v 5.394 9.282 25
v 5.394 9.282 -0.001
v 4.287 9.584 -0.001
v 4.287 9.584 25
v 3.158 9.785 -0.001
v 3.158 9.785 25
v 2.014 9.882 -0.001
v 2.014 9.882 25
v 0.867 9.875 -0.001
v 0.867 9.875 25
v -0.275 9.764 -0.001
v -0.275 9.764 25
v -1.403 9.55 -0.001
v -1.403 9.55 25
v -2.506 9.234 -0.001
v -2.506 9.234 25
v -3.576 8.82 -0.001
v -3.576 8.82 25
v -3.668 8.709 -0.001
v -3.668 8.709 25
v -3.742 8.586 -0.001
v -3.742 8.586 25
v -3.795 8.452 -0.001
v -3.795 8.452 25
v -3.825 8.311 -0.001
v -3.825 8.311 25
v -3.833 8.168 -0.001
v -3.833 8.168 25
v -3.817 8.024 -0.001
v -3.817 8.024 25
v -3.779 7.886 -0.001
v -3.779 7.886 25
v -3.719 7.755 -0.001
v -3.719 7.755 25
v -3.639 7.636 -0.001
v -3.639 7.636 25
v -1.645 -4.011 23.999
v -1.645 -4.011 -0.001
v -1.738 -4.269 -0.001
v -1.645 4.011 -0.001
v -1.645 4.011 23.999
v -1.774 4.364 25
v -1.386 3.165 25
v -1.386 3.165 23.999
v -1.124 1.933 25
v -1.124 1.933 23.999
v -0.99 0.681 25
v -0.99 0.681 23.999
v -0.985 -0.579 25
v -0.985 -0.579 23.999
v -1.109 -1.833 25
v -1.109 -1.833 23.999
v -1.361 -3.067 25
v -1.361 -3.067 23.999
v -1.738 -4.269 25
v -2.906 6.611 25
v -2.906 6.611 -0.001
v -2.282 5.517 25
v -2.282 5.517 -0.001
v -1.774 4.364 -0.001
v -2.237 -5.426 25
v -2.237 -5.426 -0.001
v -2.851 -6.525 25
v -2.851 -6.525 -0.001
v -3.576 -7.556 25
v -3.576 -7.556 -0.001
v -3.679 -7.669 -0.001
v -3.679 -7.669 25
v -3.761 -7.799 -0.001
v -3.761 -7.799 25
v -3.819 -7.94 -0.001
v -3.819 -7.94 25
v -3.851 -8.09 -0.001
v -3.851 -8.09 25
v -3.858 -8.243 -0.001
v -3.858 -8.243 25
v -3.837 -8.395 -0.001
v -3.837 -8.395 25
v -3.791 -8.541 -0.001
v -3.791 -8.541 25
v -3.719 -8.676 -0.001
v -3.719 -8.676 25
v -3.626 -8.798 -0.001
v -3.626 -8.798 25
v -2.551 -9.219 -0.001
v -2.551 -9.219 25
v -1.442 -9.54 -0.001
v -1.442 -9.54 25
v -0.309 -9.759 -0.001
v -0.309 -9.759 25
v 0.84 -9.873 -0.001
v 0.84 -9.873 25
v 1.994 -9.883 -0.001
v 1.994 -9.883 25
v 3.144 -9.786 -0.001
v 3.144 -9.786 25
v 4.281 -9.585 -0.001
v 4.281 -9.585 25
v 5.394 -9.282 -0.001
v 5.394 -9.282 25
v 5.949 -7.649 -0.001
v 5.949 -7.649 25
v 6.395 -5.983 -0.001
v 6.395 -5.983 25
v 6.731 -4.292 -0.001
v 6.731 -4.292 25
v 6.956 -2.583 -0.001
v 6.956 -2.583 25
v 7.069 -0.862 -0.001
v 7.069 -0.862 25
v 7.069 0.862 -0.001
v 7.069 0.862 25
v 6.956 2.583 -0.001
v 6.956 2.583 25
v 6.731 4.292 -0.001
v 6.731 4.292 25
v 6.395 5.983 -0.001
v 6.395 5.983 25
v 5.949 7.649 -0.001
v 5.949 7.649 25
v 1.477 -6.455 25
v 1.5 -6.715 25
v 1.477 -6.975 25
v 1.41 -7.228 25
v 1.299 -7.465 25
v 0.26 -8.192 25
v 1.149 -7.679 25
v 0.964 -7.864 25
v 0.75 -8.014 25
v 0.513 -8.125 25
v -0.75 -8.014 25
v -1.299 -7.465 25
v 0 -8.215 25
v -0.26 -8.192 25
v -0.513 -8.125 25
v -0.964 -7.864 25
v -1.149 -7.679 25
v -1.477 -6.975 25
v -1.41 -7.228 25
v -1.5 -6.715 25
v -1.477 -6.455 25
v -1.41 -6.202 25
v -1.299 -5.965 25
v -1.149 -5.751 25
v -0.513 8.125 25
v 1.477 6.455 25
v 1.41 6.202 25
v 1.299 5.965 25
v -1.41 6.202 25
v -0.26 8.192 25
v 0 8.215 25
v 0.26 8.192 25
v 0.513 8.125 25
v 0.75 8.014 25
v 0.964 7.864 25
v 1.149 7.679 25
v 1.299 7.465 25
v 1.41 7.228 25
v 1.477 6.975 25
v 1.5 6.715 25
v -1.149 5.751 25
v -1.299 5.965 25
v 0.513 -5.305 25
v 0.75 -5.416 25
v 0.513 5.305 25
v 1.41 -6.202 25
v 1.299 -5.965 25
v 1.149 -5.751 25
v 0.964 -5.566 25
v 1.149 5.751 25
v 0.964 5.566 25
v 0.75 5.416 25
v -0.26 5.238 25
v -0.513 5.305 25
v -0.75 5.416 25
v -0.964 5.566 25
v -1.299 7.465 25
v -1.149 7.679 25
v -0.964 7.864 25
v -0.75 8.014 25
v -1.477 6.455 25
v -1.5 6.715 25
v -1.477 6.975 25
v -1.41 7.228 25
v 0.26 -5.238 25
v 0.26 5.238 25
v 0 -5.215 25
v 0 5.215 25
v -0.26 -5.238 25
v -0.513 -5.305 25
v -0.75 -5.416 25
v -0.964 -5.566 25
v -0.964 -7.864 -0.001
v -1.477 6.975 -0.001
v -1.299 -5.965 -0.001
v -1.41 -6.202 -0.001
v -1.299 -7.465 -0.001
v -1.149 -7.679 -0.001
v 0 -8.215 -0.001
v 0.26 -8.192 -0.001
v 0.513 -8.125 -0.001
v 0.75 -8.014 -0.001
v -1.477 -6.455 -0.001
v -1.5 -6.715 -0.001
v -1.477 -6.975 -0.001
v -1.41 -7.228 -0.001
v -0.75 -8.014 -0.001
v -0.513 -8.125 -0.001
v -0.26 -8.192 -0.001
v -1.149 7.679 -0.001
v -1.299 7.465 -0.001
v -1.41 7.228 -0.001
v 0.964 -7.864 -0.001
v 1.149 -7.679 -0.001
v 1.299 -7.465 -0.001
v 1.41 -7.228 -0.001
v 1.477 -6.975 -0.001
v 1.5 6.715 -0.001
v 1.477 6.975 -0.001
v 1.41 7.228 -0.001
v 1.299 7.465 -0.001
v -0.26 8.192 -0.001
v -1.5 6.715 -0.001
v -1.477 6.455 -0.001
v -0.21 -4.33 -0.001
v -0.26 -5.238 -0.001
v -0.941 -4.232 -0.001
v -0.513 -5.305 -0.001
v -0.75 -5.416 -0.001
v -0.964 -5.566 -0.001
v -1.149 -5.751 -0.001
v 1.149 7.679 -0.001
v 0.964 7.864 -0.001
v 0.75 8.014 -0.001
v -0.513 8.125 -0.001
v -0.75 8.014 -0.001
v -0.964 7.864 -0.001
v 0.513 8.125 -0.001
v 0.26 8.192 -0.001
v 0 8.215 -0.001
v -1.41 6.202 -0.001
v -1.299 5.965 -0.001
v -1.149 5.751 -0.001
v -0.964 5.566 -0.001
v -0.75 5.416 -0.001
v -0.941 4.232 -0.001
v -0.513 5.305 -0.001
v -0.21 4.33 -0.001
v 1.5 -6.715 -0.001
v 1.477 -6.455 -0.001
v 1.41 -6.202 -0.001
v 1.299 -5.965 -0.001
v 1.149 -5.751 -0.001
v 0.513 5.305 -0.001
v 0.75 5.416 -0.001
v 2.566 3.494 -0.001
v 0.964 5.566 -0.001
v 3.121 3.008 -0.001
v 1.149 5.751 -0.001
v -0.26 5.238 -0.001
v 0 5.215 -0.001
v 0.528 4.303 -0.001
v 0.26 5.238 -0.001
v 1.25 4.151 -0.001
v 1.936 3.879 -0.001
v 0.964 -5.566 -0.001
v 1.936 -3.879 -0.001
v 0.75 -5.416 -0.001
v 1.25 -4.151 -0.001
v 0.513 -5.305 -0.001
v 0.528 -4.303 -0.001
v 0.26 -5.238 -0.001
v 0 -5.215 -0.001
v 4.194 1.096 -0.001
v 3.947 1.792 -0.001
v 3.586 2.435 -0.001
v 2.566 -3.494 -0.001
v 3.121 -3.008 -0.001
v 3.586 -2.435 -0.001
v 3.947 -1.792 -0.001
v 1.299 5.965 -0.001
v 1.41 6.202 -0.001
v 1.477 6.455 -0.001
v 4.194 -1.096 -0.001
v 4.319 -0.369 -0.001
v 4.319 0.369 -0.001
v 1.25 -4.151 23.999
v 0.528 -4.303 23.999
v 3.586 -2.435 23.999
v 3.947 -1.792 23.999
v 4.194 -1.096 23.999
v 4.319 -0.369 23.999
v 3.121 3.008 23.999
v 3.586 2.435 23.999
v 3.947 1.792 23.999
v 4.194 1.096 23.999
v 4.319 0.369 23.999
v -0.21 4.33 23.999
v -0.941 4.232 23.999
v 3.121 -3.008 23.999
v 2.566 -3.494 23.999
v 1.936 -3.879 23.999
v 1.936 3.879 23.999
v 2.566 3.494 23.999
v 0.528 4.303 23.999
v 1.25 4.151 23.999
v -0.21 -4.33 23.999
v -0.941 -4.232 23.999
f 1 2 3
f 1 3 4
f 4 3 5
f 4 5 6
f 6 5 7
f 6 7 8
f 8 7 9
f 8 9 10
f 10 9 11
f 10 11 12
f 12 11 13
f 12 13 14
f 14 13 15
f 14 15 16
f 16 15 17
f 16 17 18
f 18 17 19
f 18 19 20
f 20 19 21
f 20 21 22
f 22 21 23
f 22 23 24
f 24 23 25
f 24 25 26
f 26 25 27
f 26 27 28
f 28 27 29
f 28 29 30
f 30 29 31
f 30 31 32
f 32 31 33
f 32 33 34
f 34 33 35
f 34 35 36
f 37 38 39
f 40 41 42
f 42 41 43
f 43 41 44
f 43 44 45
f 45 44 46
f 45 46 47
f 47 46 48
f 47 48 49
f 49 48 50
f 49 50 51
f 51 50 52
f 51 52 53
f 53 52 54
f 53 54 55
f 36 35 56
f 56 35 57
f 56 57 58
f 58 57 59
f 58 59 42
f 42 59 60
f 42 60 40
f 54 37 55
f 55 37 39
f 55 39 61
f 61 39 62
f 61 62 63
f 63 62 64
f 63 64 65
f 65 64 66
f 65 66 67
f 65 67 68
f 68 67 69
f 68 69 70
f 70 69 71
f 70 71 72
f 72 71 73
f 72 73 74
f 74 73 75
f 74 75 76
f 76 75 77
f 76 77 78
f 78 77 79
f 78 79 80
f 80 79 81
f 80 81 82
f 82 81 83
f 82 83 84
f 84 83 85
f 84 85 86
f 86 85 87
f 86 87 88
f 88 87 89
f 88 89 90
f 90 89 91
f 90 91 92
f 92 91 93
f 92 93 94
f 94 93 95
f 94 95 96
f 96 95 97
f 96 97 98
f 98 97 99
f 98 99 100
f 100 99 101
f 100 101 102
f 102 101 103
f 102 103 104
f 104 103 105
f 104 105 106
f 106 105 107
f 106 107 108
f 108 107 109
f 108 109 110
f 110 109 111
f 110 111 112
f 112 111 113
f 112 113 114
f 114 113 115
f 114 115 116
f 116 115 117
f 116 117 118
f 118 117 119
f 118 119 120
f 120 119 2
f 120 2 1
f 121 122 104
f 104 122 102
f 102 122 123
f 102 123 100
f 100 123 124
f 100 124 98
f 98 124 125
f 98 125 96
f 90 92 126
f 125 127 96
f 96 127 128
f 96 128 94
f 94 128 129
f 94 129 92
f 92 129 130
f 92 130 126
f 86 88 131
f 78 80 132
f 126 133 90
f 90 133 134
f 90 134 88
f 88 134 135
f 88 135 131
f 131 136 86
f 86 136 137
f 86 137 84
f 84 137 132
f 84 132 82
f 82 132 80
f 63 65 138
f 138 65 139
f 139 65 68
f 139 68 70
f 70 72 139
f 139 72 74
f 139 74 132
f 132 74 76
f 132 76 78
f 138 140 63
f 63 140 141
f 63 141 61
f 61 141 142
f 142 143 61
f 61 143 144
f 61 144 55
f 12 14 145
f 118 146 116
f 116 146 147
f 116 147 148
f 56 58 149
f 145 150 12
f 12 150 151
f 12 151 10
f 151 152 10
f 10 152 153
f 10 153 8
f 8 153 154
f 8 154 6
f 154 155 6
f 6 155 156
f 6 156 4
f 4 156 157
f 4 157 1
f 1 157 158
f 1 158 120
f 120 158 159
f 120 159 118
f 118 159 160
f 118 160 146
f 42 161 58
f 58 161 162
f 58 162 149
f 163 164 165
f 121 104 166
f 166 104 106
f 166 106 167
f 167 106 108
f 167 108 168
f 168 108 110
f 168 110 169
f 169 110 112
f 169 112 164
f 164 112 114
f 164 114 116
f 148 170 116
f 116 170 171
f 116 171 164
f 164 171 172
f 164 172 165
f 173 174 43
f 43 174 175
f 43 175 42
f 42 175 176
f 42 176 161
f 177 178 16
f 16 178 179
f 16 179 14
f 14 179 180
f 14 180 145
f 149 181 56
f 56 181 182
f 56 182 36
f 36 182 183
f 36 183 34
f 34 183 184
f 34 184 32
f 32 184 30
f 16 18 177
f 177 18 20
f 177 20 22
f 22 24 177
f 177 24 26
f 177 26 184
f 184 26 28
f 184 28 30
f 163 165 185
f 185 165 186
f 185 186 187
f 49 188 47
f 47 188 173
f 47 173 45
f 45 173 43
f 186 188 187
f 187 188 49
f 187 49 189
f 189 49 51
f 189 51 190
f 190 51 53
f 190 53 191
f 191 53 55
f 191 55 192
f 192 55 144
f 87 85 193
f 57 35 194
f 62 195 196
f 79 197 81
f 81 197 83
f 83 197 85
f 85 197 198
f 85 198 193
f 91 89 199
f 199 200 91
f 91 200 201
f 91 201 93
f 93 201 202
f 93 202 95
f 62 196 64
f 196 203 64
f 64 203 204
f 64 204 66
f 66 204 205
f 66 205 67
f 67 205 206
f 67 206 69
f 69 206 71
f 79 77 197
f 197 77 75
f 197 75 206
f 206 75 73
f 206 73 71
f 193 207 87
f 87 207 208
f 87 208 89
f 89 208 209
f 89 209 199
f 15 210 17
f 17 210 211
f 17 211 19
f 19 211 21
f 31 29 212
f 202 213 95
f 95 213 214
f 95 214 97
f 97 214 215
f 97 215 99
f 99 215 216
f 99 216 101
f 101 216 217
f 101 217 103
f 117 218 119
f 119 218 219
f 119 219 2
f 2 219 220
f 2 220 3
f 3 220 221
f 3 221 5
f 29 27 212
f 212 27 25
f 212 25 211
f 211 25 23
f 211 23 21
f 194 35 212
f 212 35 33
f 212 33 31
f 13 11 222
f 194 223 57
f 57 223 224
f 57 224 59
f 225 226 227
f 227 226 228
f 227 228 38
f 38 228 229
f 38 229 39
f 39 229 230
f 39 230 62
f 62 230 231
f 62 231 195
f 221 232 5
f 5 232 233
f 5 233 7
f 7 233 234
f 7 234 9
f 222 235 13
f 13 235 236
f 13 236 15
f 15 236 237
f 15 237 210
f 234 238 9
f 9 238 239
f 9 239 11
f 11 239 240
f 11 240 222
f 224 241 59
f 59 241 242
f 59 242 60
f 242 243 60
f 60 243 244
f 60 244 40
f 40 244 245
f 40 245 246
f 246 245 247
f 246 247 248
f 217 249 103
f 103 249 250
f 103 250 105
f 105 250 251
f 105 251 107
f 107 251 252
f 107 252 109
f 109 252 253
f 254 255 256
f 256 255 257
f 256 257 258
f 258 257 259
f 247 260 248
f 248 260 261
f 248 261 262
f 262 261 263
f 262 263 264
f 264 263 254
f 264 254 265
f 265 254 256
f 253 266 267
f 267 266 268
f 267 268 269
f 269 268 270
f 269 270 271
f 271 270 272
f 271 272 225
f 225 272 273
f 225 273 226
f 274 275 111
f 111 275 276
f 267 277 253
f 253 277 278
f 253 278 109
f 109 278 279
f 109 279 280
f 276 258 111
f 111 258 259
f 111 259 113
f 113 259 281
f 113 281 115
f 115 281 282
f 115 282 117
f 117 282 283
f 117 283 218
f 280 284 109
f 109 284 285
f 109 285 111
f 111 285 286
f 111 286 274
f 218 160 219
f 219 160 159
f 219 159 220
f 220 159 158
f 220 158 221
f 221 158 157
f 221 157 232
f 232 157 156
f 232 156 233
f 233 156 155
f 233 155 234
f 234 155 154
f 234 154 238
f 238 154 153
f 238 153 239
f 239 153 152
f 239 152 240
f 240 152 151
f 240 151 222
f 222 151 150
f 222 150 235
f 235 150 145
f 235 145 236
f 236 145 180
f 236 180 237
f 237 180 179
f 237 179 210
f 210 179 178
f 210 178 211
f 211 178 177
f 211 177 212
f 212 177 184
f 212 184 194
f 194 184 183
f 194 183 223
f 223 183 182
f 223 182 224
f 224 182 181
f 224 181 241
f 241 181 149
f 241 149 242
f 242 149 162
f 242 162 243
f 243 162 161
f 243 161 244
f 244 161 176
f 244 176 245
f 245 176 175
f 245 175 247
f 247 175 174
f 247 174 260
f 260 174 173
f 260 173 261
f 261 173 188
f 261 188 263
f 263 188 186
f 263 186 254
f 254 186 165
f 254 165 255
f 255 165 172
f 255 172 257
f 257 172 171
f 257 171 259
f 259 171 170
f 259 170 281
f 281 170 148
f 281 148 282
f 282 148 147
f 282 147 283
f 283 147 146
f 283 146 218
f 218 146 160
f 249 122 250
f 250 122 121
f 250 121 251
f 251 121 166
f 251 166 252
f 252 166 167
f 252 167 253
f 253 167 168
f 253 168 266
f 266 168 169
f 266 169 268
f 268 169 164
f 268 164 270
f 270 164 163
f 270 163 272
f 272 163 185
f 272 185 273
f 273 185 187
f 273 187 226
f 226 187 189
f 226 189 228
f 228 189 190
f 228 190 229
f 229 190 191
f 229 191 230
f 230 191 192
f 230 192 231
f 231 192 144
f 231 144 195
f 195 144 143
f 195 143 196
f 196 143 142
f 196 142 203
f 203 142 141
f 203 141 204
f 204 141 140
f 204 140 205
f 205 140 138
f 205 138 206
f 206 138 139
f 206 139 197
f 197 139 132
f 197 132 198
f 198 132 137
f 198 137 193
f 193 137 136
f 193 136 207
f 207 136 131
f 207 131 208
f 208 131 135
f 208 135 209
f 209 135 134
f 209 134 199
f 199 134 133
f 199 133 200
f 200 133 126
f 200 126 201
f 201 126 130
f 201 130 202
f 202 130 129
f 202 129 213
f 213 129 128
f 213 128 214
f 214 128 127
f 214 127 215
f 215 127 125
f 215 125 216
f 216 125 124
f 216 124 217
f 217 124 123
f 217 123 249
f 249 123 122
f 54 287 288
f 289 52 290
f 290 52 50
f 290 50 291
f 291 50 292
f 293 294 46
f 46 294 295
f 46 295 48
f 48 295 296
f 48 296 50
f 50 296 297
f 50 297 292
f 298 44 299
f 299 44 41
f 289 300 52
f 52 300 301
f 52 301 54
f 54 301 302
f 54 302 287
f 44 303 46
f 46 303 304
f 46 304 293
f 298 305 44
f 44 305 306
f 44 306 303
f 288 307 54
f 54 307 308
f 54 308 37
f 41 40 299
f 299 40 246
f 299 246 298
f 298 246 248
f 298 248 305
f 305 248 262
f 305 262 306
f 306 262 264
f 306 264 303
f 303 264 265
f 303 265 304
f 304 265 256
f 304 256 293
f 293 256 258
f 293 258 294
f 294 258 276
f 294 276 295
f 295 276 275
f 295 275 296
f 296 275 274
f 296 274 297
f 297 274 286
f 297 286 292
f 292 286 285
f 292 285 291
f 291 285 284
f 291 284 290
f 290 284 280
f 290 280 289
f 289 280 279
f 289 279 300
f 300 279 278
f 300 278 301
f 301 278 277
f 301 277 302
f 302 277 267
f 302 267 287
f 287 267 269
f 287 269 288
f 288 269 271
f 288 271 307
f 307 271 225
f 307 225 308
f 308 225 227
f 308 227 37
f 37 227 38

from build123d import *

# Parameters (mm, degrees)
EXTRUDE1_DEPTH      = 25
EXTRUDE1_DEPTH_BACK = 0.001
SKETCH3_R           = 1.5
CUT_EXTRUDE1_DEPTH  = 28.804066937
SKETCH5_R           = 4.335
CUT_EXTRUDE2_DEPTH  = 24


with BuildPart() as part:
    # Sketch1 → Extrude1 (new, two sides: drawn at the far end of the back side and taken through both)
    with BuildSketch(Plane.XY.offset(-EXTRUDE1_DEPTH_BACK)):
        with BuildLine():
            ThreePointArc((5.394294709, 9.281673418), (7.083207262, 0), (5.394294709, -9.281673418))
            ThreePointArc((5.394294709, -9.281673418), (0.839593343, -9.873480825), (-3.625620963, -8.797654747))
            ThreePointArc((-3.625620963, -8.797654747), (-3.857898862, -8.166383103), (-3.57576768, -7.555761366))
            ThreePointArc((-3.57576768, -7.555761366), (-0.970954643, 0.05080099), (-3.638712866, 7.635516404))
            ThreePointArc((-3.638712866, 7.635516404), (-3.831936153, 8.239573474), (-3.57576768, 8.819744049))
            ThreePointArc((-3.57576768, 8.819744049), (0.866819678, 9.874912356), (5.394294709, 9.281673418))
        make_face()
    extrude(amount=EXTRUDE1_DEPTH + EXTRUDE1_DEPTH_BACK)

    # Sketch3 → Cut-Extrude1 (cut, through all)
    with BuildSketch(Plane.XY.offset(25)):
        with Locations((0, 6.715)):
            Circle(SKETCH3_R)
        with Locations(Location((0, -6.715, 0), (0, 0, 180))):
            Circle(SKETCH3_R)
    extrude(amount=-CUT_EXTRUDE1_DEPTH, mode=Mode.SUBTRACT)

    # Sketch5 → Cut-Extrude2 (cut)
    with BuildSketch(Plane(origin=(0, 0, -0.001), x_dir=(-1, 0, 0), z_dir=(0, 0, -1))):
        Circle(SKETCH5_R)
    extrude(amount=-CUT_EXTRUDE2_DEPTH, mode=Mode.SUBTRACT)


solid = part.part
